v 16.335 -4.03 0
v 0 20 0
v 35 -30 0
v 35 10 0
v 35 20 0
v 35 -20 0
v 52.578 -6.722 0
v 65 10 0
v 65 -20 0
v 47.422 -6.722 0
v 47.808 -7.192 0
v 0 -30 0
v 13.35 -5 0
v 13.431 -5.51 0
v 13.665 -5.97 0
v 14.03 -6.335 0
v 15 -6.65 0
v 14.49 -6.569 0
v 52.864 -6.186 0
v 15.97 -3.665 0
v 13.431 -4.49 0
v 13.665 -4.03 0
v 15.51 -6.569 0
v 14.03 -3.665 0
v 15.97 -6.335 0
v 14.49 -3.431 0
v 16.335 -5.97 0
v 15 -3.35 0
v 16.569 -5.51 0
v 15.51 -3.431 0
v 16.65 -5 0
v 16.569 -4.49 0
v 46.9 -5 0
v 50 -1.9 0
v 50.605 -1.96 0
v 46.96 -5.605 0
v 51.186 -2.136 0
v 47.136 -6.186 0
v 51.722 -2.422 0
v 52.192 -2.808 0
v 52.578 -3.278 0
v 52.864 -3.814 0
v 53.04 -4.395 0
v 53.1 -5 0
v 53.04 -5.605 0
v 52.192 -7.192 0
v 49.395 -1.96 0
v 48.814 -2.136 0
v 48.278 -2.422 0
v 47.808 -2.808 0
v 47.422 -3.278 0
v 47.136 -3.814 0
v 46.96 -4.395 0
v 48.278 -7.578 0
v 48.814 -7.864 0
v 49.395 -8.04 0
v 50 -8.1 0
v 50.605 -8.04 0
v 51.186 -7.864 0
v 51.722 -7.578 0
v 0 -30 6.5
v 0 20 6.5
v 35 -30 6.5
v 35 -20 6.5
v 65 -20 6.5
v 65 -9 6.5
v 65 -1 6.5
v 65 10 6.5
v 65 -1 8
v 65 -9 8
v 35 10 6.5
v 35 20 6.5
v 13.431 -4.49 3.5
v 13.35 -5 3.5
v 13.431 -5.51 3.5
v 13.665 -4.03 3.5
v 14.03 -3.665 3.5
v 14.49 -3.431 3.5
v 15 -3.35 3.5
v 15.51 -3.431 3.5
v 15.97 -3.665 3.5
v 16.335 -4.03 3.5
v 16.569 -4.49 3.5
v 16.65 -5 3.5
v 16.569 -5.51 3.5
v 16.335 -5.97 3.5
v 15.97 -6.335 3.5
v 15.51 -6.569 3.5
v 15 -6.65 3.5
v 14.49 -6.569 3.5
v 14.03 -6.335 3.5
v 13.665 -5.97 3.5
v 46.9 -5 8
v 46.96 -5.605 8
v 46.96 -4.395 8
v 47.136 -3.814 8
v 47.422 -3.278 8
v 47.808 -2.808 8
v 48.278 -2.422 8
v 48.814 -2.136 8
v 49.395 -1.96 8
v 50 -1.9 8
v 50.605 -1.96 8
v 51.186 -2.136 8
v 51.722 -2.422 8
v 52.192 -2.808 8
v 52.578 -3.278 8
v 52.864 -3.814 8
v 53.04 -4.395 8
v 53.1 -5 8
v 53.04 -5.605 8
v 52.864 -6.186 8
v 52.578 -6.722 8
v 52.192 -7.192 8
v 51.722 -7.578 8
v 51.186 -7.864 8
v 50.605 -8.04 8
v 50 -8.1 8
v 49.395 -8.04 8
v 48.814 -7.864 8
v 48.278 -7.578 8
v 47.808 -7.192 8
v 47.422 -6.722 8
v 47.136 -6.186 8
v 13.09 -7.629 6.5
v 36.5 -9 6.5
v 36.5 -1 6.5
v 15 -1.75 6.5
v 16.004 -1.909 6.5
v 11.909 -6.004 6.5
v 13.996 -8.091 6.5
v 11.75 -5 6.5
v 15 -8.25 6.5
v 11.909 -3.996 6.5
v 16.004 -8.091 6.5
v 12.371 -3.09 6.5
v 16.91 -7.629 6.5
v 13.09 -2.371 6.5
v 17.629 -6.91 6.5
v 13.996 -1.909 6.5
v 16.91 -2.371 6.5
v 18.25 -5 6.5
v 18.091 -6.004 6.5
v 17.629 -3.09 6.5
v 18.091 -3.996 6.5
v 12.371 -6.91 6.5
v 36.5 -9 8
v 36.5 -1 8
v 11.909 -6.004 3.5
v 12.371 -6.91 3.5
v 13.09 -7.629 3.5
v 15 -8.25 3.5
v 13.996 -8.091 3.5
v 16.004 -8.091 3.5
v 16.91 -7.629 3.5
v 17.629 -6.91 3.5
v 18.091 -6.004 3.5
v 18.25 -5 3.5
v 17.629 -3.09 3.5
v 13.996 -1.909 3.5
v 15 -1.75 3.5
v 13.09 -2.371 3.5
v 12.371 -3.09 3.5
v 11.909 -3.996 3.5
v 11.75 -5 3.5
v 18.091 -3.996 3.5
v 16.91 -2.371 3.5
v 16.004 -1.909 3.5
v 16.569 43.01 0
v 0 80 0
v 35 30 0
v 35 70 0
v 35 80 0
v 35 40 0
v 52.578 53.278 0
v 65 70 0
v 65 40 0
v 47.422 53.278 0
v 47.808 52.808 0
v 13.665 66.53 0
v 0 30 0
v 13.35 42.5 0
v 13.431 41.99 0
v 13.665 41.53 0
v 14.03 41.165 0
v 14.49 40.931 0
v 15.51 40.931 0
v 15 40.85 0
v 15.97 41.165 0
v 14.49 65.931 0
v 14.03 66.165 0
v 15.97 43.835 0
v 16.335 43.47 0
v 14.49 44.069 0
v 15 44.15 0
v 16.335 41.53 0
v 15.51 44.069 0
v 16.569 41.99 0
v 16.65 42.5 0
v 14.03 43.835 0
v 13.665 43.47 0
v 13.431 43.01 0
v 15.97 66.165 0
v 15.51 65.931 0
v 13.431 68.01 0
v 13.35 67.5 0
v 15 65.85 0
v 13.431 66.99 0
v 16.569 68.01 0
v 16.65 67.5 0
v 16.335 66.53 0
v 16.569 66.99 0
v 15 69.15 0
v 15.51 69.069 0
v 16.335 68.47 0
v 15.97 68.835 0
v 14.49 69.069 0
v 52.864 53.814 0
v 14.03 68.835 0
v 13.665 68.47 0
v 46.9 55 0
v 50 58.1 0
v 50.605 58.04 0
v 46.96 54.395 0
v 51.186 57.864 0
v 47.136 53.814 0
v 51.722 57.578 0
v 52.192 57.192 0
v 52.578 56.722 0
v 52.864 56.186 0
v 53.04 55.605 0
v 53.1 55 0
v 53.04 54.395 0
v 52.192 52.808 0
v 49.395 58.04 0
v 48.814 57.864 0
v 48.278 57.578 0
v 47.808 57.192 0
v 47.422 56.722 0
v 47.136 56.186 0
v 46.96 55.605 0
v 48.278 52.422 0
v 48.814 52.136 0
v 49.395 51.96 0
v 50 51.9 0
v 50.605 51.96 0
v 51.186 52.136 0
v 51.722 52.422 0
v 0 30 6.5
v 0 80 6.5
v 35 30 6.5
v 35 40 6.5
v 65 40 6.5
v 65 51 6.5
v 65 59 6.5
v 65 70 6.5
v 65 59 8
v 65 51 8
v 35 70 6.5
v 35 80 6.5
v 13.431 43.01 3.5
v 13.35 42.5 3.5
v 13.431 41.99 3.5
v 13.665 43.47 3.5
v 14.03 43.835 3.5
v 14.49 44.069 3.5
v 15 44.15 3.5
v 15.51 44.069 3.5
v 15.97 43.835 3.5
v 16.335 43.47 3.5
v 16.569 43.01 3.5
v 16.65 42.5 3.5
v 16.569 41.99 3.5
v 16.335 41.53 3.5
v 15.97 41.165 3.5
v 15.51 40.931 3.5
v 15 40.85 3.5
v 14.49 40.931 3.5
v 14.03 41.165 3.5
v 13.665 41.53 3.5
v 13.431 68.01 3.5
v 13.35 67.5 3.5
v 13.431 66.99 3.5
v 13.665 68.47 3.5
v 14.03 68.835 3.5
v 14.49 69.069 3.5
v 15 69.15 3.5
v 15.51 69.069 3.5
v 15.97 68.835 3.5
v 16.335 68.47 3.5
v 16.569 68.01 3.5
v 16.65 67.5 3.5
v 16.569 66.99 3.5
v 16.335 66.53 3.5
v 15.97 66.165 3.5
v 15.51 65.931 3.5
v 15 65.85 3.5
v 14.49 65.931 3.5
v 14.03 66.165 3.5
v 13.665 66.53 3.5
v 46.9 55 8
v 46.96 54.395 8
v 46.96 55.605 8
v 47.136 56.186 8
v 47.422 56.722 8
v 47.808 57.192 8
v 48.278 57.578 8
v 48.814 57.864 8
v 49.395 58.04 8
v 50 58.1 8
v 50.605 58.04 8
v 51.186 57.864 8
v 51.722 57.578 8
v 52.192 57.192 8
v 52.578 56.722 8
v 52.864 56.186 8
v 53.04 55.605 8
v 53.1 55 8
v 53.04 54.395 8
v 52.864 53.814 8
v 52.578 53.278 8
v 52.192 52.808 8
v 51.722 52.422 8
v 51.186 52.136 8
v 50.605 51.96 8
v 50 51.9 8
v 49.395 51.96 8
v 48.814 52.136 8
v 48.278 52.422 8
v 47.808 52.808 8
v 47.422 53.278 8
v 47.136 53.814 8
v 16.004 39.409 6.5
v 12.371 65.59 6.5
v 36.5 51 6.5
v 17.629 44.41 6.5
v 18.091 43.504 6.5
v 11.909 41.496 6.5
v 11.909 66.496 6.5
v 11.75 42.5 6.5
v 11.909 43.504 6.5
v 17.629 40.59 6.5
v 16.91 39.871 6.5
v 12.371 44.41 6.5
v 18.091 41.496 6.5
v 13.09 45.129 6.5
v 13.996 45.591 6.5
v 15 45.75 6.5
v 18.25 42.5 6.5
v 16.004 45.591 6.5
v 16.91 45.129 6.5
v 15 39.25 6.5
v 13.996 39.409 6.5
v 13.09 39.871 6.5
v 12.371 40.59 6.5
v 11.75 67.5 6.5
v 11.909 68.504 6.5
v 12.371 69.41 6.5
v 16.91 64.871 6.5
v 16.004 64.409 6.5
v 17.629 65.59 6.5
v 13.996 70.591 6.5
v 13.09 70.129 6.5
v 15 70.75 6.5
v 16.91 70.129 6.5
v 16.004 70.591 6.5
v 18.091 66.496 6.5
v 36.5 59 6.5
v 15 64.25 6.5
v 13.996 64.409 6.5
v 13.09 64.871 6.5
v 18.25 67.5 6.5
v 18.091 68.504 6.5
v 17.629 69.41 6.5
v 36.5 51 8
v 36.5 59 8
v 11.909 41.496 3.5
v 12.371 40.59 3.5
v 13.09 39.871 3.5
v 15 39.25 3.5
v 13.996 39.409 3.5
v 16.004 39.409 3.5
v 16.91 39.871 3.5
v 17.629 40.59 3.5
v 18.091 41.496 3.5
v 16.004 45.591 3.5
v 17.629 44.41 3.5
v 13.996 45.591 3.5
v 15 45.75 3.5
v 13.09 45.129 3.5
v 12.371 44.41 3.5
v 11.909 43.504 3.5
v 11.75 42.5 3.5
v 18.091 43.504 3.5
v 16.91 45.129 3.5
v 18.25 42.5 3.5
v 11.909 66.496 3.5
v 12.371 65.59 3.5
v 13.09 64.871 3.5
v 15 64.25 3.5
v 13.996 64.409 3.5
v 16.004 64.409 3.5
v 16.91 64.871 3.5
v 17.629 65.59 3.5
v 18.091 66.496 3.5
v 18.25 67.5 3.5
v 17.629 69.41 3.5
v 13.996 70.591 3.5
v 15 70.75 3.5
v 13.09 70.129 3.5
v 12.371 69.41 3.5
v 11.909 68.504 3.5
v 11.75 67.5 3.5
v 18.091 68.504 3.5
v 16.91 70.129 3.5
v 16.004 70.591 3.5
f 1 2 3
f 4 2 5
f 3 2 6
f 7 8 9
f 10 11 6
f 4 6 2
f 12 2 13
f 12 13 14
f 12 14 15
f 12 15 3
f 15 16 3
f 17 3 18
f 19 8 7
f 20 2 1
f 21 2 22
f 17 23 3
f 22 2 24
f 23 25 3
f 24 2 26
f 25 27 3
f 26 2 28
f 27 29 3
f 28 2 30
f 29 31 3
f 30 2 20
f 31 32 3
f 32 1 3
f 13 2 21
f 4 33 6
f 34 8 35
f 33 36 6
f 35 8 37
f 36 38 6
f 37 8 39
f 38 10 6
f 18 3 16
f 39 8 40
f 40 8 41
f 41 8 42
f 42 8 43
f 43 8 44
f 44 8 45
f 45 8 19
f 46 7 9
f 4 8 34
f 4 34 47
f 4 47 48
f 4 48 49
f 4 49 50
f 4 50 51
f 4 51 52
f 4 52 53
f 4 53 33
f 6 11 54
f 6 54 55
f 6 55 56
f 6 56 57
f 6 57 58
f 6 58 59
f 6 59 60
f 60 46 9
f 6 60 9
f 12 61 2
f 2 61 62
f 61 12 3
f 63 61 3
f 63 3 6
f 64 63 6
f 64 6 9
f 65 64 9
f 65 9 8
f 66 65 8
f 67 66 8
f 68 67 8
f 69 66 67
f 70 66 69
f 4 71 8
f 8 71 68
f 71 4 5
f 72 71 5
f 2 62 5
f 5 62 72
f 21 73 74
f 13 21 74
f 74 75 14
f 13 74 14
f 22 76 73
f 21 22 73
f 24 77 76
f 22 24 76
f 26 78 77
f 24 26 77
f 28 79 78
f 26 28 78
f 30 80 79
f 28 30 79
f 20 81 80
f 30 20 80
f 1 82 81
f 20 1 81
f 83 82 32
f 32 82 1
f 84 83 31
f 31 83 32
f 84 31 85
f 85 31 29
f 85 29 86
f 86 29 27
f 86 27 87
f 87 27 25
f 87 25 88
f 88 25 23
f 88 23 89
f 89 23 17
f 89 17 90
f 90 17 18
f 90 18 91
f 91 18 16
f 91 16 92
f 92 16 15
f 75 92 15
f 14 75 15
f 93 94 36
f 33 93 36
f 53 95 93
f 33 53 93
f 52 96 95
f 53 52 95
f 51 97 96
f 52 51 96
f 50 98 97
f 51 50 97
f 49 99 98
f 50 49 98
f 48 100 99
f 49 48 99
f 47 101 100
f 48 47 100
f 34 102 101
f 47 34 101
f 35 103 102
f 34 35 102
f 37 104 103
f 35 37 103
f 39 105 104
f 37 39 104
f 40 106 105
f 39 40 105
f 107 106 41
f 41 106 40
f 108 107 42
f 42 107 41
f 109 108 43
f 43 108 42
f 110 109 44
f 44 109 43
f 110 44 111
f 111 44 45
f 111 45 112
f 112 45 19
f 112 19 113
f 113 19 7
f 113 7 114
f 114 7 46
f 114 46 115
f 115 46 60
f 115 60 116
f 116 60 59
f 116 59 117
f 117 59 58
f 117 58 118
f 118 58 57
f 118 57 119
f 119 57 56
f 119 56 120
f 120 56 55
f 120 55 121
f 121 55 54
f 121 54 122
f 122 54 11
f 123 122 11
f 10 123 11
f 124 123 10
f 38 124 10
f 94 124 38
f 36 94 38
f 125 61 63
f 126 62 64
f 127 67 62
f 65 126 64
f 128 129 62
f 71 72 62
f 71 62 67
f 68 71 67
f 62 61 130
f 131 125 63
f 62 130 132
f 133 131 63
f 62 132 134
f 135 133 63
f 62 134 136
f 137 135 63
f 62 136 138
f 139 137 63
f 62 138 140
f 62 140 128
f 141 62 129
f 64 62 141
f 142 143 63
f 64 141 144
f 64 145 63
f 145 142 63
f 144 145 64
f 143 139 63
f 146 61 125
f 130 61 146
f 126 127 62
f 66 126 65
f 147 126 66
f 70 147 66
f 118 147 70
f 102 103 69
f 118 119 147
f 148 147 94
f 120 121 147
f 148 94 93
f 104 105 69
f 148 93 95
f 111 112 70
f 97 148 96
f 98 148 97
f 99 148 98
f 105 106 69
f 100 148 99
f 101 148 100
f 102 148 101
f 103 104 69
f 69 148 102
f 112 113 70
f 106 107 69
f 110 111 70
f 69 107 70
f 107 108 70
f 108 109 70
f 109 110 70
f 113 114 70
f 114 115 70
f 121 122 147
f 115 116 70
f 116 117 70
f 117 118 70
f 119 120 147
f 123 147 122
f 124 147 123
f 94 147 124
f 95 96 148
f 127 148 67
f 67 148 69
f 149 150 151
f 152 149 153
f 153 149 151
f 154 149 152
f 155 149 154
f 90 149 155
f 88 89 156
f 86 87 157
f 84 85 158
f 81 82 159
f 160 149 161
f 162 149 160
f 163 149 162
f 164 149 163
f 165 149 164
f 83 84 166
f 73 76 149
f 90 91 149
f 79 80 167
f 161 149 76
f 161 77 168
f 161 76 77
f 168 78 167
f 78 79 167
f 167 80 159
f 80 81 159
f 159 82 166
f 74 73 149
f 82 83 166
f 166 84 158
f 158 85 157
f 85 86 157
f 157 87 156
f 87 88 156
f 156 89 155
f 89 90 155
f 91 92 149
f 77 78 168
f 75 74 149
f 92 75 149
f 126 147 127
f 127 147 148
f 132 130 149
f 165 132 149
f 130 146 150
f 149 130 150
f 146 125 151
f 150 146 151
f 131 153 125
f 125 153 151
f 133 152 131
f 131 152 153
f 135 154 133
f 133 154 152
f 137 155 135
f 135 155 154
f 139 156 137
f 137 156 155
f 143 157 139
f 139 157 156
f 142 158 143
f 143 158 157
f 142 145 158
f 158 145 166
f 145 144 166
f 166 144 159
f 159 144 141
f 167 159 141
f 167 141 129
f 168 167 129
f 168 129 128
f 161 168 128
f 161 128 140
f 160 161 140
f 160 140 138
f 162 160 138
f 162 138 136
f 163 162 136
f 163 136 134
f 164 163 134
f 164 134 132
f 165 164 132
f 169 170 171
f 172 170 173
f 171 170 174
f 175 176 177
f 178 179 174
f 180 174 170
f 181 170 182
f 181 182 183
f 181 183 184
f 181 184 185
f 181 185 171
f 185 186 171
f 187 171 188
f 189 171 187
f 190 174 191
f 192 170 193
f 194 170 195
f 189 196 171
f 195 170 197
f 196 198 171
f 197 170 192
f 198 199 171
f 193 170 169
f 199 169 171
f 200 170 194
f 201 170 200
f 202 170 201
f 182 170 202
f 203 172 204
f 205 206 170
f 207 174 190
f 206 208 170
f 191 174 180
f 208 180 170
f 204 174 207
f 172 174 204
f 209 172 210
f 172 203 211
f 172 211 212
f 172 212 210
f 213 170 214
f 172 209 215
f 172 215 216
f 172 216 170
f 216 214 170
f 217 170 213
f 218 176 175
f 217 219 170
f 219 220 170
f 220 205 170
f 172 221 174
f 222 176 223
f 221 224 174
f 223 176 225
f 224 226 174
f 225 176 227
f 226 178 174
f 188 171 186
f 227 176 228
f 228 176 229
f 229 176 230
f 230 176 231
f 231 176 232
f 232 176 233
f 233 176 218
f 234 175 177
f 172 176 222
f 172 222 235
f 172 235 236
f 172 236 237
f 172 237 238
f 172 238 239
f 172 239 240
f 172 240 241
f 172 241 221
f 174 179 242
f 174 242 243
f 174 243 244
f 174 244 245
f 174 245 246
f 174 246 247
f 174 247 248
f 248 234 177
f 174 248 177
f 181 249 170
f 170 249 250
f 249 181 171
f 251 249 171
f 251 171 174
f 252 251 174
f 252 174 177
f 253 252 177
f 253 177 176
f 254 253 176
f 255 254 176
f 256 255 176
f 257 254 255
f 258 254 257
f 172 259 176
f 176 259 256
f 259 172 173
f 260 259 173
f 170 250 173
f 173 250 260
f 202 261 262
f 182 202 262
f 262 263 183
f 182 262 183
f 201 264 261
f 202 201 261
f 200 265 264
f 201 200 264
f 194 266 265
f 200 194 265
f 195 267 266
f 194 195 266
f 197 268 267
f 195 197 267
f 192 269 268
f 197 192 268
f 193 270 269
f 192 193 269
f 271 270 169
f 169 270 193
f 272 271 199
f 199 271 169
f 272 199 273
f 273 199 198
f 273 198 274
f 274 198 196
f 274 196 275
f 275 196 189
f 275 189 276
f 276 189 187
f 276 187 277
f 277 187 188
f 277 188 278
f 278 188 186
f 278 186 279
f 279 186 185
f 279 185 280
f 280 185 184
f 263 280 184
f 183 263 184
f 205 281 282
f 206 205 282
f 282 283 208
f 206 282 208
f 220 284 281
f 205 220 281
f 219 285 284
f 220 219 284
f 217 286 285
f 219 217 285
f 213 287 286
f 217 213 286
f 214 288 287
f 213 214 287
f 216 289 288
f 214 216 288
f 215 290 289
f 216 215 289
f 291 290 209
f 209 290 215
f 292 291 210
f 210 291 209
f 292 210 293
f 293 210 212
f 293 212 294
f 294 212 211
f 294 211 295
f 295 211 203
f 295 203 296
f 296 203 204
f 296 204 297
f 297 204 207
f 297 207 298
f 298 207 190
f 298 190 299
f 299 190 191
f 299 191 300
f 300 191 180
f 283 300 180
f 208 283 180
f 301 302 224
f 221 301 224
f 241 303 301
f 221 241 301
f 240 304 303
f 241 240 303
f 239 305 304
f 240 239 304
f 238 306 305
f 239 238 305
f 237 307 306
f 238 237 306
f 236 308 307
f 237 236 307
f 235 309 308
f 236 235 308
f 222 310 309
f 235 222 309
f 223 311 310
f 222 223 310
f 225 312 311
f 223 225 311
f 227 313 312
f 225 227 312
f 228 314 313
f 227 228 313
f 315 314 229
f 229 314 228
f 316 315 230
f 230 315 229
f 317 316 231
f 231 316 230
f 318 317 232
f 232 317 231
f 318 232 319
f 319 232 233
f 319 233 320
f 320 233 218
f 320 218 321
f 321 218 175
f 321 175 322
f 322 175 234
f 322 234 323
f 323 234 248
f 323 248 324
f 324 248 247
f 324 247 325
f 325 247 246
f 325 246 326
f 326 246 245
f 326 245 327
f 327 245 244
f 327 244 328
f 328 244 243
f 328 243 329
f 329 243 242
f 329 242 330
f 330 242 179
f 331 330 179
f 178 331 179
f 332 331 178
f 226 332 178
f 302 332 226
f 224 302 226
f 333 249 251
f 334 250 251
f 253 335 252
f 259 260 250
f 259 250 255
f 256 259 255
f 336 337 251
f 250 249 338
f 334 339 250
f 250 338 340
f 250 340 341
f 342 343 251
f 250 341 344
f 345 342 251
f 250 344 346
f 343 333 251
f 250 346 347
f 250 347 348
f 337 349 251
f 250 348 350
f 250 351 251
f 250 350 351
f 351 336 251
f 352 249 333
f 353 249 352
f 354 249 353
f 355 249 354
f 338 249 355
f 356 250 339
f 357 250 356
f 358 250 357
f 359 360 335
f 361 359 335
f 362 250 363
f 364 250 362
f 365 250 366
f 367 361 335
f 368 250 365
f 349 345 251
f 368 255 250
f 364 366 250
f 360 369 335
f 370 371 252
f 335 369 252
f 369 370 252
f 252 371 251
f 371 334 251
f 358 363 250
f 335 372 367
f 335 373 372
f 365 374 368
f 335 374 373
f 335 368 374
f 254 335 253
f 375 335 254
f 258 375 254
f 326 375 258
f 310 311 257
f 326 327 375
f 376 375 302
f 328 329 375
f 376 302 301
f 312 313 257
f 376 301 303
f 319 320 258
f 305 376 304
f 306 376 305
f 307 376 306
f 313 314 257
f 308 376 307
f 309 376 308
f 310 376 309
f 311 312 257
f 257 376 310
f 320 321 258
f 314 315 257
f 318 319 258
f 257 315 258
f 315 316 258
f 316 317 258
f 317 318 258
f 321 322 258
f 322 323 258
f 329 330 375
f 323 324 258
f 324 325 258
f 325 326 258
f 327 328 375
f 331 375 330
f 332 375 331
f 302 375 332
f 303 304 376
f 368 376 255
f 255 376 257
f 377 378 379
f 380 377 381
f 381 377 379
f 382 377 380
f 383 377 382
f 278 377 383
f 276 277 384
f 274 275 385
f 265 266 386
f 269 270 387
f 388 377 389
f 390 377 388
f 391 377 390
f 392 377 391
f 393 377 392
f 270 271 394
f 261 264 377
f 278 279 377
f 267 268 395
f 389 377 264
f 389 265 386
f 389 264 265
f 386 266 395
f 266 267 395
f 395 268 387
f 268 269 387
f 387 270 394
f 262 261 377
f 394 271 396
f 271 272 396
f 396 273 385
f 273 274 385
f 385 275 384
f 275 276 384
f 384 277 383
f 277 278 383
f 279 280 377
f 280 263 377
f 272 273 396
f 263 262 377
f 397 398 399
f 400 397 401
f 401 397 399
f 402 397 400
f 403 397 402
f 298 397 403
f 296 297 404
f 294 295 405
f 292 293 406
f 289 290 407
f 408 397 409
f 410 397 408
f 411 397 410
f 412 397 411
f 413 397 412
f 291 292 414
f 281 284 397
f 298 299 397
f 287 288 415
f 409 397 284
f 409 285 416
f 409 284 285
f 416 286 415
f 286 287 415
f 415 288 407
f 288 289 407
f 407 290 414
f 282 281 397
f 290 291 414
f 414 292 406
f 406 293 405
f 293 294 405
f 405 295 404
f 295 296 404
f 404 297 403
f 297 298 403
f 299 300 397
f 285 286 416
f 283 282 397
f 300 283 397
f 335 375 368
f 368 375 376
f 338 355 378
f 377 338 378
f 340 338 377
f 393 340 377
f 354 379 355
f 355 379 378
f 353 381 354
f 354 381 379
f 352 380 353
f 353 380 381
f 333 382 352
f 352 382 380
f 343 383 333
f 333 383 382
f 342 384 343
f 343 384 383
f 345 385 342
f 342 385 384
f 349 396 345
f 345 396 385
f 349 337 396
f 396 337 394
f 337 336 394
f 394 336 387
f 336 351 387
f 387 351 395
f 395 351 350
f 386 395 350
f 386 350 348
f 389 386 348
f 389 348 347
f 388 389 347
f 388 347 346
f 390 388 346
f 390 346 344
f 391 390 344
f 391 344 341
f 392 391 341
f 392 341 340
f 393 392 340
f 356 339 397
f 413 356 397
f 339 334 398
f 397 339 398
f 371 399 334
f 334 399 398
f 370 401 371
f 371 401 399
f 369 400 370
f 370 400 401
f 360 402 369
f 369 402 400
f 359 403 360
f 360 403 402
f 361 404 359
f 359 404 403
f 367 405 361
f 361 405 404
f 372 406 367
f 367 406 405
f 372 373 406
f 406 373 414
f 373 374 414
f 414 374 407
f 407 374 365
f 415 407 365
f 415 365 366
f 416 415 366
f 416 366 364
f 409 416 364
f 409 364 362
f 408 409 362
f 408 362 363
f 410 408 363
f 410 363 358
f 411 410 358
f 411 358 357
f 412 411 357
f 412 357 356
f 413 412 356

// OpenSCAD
// RebeliX
//
// corner coupler
// GNU GPL v3
// Martin Neruda <neruda@reprap4u.cz>
// http://www.reprap4u.cz
// Inspired by Rebel II

// Postacuji i 4 mm
base_thickness = 6.5;

module base(){
difference(){
	union(){
		translate([0,-10])cube([35,50,base_thickness]);
       translate([35,0])cube([30,30,base_thickness], center = false);
		//translate([11,0,0])cube([8,30,base_thickness+1.5]);
		translate([65,30/2-4,0])rotate(90,0,0)cube([8,28.5,base_thickness+1.5]);
		}
		
		//translate([11+4,30/2,-0.1])cylinder(h=10,r=3.1,$fn=32);
		translate([65-30/2,30/2,-0.1])cylinder(h=10,r=3.1,$fn=32);
}
}

translate([0,30])difference(){
translate([0,10])base();
translate([15,12.5])cylinder(r=3.3/2,h=10,$fn=20);
translate([15,12.5+25])cylinder(r=3.3/2,h=10,$fn=20);
translate([15,12.5,base_thickness-3])cylinder(r=6.5/2,h=10,$fn=20);
translate([15,12.5+25,base_thickness-3])cylinder(r=6.5/2,h=10,$fn=20);
}

translate([0,-30])difference(){
translate([0,10])base();
translate([15,25])cylinder(r=3.3/2,h=10,$fn=20);
translate([15,25,base_thickness-3])cylinder(r=6.5/2,h=10,$fn=20);

}
